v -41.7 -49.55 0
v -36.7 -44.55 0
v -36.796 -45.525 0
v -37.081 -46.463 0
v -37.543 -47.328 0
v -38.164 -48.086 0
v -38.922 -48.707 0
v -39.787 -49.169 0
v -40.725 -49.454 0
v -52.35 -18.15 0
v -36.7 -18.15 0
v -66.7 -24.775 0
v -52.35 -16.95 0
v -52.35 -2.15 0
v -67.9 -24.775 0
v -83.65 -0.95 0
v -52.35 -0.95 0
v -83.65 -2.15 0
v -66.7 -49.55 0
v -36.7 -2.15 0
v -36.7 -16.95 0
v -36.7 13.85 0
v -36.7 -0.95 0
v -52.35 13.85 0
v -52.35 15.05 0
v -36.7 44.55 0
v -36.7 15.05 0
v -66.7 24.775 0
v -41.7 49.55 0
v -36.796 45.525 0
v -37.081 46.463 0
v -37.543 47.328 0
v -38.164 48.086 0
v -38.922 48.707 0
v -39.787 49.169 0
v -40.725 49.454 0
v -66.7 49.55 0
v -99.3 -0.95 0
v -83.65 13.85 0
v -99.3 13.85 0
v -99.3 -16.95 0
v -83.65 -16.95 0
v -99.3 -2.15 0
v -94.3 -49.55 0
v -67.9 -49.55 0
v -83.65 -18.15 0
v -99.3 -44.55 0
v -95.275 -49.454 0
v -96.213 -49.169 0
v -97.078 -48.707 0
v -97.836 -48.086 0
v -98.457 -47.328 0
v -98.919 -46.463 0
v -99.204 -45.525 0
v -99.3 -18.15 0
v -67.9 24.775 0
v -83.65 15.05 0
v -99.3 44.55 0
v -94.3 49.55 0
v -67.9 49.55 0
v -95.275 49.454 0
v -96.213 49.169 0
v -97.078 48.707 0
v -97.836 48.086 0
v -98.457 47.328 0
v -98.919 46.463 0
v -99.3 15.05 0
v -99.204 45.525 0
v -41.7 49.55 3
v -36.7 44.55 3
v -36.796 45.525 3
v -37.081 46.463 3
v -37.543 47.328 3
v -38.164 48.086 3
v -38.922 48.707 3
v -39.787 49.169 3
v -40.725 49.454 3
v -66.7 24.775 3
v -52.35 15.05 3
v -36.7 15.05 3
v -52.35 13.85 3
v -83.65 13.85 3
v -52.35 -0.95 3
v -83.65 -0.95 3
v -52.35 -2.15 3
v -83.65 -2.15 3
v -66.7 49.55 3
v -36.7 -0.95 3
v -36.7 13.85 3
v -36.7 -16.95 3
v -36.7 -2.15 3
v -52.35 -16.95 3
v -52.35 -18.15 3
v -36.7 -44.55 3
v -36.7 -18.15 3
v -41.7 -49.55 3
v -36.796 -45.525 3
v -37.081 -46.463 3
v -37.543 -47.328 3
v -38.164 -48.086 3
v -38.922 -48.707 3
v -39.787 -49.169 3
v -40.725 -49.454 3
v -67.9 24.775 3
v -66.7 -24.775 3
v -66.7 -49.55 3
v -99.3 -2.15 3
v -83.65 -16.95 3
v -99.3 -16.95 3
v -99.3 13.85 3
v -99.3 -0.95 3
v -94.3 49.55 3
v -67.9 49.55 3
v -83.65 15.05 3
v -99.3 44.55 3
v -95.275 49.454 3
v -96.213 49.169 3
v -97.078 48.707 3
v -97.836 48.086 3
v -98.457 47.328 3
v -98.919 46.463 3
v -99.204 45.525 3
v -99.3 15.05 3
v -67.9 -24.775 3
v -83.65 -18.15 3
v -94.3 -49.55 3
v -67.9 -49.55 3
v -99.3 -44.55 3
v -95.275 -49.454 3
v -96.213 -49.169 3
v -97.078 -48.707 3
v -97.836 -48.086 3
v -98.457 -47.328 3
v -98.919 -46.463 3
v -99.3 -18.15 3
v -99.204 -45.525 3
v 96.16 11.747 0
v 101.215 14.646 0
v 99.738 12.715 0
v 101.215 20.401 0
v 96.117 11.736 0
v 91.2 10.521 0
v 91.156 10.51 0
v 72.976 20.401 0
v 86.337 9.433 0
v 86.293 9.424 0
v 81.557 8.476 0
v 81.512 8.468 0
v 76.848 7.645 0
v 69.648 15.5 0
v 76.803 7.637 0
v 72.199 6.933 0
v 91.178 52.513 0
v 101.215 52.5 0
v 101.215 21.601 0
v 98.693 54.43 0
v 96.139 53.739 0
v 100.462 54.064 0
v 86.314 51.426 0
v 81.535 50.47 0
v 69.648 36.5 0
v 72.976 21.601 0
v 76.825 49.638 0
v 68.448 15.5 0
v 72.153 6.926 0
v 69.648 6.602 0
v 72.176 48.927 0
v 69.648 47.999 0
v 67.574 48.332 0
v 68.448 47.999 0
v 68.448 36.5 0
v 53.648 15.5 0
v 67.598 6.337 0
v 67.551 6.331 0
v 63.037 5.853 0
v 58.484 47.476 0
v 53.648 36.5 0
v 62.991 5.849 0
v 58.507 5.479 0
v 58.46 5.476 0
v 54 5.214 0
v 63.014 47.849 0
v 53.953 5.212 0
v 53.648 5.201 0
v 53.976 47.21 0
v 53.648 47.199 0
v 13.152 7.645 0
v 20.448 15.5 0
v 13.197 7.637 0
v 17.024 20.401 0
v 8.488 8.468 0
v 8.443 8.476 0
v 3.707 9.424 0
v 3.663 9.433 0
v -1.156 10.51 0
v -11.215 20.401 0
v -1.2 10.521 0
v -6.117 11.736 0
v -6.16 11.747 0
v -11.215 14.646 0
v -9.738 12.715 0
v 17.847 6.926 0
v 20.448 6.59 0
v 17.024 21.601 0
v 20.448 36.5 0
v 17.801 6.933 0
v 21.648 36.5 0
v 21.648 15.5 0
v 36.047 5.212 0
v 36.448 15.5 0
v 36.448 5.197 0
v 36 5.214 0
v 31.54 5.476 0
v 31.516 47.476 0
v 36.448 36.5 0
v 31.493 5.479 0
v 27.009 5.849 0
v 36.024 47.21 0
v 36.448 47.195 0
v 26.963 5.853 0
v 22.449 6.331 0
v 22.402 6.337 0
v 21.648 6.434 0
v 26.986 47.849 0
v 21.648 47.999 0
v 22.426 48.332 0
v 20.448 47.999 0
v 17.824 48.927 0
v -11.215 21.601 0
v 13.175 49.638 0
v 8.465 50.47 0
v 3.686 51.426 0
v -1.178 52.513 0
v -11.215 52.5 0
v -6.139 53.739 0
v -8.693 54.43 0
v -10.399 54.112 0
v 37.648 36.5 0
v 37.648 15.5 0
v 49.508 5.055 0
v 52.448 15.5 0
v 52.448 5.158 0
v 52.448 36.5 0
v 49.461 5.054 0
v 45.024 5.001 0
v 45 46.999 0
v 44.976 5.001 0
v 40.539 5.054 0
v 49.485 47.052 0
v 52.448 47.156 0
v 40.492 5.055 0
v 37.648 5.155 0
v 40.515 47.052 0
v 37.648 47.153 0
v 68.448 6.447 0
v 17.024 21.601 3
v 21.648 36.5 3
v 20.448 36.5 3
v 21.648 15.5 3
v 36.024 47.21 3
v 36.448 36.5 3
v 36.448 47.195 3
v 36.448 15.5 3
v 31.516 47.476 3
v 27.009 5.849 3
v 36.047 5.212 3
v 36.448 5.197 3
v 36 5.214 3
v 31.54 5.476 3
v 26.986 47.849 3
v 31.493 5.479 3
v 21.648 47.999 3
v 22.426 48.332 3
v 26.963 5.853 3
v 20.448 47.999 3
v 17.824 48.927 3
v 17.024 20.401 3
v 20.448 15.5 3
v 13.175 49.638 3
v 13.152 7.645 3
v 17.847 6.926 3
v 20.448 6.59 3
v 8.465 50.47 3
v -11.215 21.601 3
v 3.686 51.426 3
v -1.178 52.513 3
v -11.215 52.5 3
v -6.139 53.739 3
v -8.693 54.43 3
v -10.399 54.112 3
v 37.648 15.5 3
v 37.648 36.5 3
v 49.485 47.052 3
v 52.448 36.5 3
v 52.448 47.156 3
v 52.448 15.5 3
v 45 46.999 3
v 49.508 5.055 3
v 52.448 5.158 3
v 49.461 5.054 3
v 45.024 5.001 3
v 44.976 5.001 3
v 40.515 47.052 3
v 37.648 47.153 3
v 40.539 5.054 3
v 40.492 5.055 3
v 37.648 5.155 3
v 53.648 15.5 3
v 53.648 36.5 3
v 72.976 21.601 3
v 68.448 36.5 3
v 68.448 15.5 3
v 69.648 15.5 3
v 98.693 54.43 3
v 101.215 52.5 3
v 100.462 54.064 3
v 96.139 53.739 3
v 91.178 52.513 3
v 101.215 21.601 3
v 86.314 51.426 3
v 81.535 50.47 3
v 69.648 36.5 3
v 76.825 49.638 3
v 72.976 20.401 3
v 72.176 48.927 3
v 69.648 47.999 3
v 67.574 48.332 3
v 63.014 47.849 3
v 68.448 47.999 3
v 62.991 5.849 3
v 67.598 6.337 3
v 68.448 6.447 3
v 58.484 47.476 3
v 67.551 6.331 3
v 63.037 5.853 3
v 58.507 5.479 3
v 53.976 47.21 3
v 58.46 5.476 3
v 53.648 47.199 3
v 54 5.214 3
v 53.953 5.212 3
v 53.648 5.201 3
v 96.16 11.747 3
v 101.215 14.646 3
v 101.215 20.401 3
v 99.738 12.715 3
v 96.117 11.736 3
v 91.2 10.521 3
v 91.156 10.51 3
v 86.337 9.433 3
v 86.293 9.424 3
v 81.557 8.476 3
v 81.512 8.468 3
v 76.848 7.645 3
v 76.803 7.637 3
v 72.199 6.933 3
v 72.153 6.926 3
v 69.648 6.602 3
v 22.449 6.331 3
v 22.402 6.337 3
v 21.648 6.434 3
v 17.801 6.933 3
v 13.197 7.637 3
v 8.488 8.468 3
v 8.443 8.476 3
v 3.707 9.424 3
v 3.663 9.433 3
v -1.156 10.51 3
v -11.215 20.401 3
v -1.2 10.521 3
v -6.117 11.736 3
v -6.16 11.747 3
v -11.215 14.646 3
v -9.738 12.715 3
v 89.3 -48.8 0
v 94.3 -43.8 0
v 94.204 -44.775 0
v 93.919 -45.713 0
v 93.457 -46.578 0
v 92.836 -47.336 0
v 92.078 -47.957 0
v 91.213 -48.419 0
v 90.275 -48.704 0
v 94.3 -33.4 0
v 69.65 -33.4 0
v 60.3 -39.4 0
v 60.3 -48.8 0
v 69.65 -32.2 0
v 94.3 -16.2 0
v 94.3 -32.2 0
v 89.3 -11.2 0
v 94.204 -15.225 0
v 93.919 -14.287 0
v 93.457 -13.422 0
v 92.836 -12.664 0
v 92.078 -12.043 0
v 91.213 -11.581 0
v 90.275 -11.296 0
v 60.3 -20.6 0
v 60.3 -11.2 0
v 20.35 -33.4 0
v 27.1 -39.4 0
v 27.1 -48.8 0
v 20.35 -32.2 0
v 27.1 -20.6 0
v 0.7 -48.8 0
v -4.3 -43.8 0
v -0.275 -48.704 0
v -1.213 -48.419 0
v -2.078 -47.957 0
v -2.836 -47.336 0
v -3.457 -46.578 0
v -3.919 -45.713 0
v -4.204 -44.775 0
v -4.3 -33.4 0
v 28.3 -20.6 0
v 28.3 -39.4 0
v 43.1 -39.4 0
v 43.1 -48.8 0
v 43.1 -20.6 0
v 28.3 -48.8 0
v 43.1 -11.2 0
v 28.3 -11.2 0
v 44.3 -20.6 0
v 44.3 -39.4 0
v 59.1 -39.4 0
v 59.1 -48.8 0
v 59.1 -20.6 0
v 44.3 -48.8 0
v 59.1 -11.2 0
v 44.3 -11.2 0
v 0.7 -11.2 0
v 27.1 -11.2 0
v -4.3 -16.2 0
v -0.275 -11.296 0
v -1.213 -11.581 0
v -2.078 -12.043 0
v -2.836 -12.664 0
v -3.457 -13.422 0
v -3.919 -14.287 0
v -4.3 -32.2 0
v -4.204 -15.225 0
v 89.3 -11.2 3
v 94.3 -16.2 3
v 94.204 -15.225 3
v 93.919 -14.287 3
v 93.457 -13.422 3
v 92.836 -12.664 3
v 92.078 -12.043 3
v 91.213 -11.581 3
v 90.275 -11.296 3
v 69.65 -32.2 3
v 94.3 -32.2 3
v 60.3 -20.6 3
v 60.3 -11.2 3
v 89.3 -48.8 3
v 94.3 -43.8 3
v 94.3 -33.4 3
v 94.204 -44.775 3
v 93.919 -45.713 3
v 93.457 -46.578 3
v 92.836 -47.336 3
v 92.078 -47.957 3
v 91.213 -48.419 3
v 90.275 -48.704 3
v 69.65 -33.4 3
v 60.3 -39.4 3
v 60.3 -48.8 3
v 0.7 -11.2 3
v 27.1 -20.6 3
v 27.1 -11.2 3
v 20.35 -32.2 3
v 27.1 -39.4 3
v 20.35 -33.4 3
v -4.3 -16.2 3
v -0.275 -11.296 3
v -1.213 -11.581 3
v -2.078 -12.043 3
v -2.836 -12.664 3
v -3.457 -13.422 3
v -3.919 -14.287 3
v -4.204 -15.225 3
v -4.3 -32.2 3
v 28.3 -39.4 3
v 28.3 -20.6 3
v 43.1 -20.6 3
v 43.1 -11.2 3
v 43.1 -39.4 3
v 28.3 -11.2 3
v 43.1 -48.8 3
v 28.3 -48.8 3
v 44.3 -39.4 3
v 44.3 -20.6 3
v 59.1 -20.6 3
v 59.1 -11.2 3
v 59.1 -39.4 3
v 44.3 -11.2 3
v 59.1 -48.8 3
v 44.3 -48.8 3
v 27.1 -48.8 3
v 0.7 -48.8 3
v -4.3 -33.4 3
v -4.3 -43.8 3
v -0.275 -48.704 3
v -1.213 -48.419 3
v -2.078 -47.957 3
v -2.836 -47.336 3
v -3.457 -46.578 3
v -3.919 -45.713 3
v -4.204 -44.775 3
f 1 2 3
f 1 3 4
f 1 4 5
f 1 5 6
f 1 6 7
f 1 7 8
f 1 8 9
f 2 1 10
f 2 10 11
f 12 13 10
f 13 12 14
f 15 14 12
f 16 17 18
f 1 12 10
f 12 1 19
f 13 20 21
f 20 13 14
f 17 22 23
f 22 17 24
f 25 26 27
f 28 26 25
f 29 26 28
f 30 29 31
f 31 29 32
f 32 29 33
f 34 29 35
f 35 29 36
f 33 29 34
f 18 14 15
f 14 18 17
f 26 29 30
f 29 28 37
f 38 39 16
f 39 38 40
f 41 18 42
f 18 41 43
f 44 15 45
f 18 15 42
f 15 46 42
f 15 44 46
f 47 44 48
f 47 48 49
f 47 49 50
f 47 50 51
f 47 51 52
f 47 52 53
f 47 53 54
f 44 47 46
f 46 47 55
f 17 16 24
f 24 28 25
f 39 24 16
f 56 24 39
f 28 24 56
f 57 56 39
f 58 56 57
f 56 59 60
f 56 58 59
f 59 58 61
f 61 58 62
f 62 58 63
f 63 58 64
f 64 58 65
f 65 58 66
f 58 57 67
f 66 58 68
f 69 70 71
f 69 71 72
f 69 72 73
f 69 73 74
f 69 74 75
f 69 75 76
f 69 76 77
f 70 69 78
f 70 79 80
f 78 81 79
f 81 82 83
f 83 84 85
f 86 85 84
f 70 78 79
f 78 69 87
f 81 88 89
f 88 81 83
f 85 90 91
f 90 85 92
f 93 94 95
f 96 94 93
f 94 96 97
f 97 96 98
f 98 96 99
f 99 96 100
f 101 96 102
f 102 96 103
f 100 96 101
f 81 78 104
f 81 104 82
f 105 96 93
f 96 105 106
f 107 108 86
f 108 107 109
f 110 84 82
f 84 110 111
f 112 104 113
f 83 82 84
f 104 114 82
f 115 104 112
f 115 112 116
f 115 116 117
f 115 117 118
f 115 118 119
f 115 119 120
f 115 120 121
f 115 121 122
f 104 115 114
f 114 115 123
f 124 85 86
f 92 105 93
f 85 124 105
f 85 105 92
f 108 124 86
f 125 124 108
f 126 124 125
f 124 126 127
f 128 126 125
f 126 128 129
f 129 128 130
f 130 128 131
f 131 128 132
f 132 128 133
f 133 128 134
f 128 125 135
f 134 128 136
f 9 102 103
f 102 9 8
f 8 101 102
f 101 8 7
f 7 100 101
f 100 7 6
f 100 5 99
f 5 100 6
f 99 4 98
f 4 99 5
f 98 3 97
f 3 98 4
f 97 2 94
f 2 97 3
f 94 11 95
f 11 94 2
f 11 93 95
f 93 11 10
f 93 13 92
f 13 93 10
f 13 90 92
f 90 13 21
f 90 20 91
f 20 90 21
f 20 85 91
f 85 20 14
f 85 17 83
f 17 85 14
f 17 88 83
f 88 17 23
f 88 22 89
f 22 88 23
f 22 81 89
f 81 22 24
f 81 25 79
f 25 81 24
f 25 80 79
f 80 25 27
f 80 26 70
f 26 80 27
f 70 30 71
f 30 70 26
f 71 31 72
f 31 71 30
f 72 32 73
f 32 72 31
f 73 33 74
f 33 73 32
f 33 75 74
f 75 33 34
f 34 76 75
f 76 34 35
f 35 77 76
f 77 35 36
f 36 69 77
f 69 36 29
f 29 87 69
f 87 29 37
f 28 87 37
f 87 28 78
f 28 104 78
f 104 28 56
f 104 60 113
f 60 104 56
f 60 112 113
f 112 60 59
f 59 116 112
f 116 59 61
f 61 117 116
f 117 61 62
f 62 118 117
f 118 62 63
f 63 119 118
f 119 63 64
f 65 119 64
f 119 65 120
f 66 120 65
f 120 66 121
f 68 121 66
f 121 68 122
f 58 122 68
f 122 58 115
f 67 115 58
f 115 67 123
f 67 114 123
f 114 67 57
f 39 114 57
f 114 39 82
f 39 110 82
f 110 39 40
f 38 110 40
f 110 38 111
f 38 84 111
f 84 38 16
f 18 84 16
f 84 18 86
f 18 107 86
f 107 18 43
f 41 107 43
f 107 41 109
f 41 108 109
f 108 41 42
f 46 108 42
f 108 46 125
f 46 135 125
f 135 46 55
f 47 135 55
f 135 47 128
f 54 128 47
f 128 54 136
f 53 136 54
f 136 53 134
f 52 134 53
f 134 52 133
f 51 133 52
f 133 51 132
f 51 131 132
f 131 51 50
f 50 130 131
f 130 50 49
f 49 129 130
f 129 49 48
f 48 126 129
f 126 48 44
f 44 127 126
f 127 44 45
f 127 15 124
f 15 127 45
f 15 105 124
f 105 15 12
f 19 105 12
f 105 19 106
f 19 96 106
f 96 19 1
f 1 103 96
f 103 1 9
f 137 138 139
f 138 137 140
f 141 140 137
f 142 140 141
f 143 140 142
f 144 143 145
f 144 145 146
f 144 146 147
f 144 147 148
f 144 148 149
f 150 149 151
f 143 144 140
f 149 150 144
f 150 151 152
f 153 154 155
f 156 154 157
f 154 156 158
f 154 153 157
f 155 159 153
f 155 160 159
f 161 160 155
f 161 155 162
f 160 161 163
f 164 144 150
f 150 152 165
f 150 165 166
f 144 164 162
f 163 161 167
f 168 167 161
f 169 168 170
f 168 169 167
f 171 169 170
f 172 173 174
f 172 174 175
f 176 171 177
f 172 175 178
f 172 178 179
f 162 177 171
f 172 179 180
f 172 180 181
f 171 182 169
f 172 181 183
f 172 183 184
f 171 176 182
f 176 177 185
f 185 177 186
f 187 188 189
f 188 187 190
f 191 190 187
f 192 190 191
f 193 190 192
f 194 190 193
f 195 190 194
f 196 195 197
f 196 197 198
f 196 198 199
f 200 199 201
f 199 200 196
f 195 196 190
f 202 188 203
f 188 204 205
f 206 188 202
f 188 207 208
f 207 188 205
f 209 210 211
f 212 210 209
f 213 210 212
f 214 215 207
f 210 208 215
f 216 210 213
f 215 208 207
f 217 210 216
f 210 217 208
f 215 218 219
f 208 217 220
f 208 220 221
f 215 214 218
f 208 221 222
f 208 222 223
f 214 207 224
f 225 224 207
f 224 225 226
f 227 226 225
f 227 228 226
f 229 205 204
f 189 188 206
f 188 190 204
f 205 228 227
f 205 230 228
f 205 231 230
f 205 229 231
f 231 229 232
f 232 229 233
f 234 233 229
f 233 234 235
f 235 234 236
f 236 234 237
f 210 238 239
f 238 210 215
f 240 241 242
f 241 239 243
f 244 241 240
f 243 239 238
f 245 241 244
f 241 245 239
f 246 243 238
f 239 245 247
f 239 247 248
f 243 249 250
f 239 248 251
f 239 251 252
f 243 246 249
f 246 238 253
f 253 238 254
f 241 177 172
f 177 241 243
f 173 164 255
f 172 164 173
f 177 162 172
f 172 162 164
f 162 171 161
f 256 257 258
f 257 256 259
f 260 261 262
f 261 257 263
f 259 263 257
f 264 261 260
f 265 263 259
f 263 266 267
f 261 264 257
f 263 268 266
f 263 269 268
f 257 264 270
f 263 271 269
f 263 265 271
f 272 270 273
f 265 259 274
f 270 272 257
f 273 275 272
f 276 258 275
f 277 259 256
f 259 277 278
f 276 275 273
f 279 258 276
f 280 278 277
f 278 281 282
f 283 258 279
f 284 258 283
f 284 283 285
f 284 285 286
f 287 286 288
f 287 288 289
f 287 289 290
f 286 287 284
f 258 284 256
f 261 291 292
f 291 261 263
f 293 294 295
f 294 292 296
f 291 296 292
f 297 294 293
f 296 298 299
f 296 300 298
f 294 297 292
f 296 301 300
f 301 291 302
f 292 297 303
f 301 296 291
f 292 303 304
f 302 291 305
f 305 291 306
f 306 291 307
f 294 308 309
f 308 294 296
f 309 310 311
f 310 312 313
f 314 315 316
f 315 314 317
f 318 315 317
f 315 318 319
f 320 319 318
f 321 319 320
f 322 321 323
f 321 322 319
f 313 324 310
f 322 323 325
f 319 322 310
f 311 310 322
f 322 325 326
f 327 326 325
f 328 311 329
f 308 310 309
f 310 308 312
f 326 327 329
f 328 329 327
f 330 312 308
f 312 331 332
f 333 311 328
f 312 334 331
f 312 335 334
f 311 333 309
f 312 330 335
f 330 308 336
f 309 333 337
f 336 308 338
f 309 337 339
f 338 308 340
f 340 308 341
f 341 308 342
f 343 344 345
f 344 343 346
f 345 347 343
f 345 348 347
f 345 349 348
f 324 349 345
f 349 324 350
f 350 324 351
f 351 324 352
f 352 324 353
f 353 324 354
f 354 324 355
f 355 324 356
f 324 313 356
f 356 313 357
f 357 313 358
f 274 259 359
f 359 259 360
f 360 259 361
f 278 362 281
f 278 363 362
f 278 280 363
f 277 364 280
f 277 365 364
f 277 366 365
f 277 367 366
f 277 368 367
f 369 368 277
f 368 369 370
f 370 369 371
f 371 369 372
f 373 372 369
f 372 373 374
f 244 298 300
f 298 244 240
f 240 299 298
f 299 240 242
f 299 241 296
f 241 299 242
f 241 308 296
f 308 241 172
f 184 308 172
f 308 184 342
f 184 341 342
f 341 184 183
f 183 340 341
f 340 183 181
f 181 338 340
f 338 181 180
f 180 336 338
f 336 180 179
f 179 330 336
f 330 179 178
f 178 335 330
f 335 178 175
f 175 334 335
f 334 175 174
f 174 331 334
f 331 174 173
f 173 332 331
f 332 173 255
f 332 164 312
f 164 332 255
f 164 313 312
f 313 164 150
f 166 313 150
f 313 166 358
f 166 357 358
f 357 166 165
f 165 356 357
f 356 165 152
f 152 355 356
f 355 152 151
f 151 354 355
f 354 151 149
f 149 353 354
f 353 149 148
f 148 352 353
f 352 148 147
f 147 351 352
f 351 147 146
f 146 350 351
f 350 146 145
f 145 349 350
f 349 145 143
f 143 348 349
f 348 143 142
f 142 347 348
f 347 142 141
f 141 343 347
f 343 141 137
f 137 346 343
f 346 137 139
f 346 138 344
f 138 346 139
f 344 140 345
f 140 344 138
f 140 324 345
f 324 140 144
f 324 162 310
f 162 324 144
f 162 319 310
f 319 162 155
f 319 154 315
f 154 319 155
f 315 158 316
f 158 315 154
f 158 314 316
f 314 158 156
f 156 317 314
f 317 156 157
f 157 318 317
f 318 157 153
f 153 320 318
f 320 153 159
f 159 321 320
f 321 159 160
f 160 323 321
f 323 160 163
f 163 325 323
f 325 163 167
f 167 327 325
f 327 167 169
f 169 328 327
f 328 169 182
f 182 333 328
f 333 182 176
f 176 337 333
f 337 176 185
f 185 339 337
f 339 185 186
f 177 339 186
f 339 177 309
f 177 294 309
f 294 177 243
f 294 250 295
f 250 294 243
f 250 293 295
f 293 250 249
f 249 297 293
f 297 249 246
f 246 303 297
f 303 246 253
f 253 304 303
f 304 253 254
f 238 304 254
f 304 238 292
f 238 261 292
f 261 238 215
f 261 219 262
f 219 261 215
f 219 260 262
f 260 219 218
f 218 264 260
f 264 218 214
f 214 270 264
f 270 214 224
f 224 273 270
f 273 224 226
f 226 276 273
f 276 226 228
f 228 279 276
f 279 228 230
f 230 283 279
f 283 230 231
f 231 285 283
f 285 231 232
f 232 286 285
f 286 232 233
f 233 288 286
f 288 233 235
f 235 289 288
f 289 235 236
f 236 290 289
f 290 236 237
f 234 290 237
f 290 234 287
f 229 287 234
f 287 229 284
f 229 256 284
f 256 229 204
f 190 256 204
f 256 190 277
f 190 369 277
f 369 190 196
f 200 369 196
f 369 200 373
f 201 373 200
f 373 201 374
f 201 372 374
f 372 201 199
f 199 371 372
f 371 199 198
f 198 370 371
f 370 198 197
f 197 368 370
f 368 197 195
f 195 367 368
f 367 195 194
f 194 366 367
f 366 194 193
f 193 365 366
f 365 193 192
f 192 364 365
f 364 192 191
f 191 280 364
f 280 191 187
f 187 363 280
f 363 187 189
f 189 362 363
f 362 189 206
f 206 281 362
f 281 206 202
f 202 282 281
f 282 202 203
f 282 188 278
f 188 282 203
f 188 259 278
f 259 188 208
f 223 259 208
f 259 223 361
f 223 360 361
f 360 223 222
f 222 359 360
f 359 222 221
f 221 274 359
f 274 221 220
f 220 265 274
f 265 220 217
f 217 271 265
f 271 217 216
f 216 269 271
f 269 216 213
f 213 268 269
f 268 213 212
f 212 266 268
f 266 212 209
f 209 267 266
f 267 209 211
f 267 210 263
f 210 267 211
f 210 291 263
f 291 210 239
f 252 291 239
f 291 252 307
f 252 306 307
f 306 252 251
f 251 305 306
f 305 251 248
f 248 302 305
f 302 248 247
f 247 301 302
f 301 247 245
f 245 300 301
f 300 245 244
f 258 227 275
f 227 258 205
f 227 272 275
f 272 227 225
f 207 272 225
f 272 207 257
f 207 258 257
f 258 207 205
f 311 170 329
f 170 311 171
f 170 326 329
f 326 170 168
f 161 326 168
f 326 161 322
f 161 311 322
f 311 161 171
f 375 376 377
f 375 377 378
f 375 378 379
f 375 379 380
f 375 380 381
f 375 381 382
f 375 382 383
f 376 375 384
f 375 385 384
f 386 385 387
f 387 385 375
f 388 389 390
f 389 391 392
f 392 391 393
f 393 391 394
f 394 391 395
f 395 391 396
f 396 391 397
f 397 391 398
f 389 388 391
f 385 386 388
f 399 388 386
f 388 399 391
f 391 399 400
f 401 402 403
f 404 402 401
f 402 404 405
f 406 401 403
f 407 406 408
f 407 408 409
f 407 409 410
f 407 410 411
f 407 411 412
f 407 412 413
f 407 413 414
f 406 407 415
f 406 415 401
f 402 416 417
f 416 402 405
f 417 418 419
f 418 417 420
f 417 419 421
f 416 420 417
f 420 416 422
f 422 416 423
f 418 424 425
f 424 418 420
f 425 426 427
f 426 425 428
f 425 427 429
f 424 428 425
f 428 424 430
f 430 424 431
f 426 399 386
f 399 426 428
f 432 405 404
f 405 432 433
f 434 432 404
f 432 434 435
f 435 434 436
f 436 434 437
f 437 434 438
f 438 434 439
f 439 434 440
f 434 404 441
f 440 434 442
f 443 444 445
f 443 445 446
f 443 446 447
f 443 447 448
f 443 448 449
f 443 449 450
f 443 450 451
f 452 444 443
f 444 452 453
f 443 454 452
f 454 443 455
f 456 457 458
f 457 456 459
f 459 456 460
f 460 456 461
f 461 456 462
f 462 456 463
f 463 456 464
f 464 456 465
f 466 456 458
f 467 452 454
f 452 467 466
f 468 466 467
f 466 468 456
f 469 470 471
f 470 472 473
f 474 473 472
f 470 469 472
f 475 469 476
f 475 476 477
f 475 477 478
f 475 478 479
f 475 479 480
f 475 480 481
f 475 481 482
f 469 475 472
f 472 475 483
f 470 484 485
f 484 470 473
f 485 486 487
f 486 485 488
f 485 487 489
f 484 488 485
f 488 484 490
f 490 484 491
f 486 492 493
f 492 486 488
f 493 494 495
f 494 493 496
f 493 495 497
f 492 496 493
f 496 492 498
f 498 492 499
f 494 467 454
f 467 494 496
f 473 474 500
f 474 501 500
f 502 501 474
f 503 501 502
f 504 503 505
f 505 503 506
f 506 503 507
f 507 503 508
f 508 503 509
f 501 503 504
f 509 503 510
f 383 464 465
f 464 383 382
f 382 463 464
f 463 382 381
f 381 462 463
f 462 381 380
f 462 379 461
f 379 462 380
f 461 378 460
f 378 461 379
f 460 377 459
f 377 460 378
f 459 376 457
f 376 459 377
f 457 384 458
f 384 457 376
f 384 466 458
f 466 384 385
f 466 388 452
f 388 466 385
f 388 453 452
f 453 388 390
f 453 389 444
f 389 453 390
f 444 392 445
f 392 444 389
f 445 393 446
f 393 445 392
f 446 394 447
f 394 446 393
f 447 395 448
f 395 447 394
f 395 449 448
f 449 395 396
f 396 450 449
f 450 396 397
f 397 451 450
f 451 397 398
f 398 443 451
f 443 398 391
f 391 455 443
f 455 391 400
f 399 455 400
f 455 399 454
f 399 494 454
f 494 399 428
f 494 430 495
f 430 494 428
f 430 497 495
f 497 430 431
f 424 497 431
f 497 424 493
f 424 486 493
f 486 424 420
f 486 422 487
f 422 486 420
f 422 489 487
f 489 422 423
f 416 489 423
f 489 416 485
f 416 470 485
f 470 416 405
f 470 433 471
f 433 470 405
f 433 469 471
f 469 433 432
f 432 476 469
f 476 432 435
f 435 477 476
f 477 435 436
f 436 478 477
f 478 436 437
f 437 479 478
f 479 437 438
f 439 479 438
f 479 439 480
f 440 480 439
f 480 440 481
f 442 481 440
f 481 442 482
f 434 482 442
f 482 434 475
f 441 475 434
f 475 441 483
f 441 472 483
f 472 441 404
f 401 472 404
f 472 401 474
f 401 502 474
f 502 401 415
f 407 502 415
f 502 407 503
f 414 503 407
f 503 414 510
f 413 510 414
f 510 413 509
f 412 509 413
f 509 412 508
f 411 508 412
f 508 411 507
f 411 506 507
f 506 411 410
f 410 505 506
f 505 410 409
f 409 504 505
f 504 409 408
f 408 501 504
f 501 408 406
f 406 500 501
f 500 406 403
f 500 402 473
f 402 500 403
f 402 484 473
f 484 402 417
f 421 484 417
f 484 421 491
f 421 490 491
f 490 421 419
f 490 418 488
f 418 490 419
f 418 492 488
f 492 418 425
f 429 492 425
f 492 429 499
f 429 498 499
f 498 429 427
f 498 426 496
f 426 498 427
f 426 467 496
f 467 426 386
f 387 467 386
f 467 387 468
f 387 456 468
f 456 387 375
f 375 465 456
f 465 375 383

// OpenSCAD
// file: lib/aux_pod_lib.scad
// SPDX-License-Identifier: CERN-OHL-P-2.0
// Copyright 2026 CLSOFTLAB (씨엘소프트랩), Dr. Lee Il-guk (이일국)
// Open Walking Safety Helmet (OWSH) - aux pod (v1.1, NEW): low conformal pod on the back of the
// head, below the main case. Holds D1 ULN2003 driver board and A1 USB audio adapter, which do
// not fit inside the main case under its 40 mm height cap. Fully conformal: floor, lid underside
// and lid top are offset surfaces of the shell, so the height above the shell is uniform.
//
// Pod frame (worn): origin = underside centre (top of the 3 mm saddle), +X along the long axis
// (across the back of the head, user's right), +Y up the head toward the crown, +Z outward.

include <owsh_common.scad>

aux_R_lat  = 110;   // shell radius along X (around the back of the head) - measure
aux_R_long = 140;   // shell radius along Y (up the back of the head) - measure

uln_size   = [35, 32, 15];   // ULN2003 board (verify; hole pattern varies -> corner cradle)
audio_size = [50, 18, 10];   // USB audio adapter (verify)
aw = 1.8; afloor = 1.6; alid = 1.8; agap = 0.6;
mid_gap = 8;                 // between the two bays (holds lid screws)

a_in_L = 1 + uln_size[0] + mid_gap + audio_size[0] + 1;
a_in_W = uln_size[1] + 2;
aux_L = a_in_L + 2 * aw;
aux_W = a_in_W + 2 * aw;
aRl = aux_R_lat; aRg = aux_R_long;
function chord_sag(len, R) = R - sqrt(R * R - len * len / 4);
a_d_under = afloor + max(uln_size[2] + chord_sag(uln_size[0], aRl + afloor), audio_size[2] + chord_sag(audio_size[0], aRl + afloor)) + agap;
a_d_top   = a_d_under + alid;
uln_x   = -a_in_L / 2 + 1 + uln_size[0] / 2;
audio_x =  a_in_L / 2 - 1 - audio_size[0] / 2;
gap_x   = -a_in_L / 2 + 1 + uln_size[0] + mid_gap / 2;
function az(x, y, d) = d - esag(x, y, aRl + d, aRg + d);
a_bosses = [[gap_x, a_in_W / 2 - 3.2], [gap_x, -a_in_W / 2 + 3.2], [a_in_L / 2 - 5, a_in_W / 2 - 3.2], [a_in_L / 2 - 5, -a_in_W / 2 + 3.2]];

echo(str("OWSH aux pod: footprint ", aux_L, " x ", aux_W, " mm, height above shell ", a_d_top + saddle_t, " mm"));

module a_prism(grow = 0) translate([0, 0, -80]) linear_extrude(200) rounded_rect2d([aux_L + 2 * grow, aux_W + 2 * grow], 5 + grow);
module a_under() below_surf(a_d_under, aRl, aRg);
module a_top()   below_surf(a_d_top, aRl, aRg);

module aux_pod_base() {
    difference() {
        union() {
            intersection() {
                a_prism(); above_surf(0, aRl, aRg); a_under();
                union() {
                    difference() { a_prism(); a_prism(-aw); }
                    intersection() { a_prism(-aw); below_surf(afloor, aRl, aRg); }
                    intersection() {
                        a_prism(-aw + eps); above_surf(afloor - eps, aRl, aRg);
                        union() {
                            // ULN2003 corner cradle posts
                            for (sx = [-1, 1], sy = [-1, 1]) translate([uln_x + sx * (uln_size[0] / 2 + clr), sy * (uln_size[1] / 2 + clr), -20])
                                difference() {
                                    translate([sx < 0 ? -1.6 : -6, sy < 0 ? -1.6 : -6, 0]) cube([7.6, 7.6, 20 + afloor + 7]);
                                    translate([sx < 0 ? 0 : -8, sy < 0 ? 0 : -8, -1]) cube([8, 8, 40]);
                                }
                            // audio adapter side rails
                            for (sy = [-1, 1]) translate([audio_x - audio_size[0] / 2 + 6, sy * (audio_size[1] / 2 + clr) + (sy < 0 ? -1.6 : 0), -20])
                                cube([audio_size[0] - 12, 1.6, 20 + afloor + 6]);
                            for (p = a_bosses) translate([p[0], p[1], -20]) cylinder(d = 6, h = 60, $fn = fn_hole);
                        }
                    }
                }
            }
            // strap tabs on both ends, following the shell
            for (sx = [-1, 1]) let(x = sx * (aux_L / 2 - 1))
                translate([x, 0, -esag(x, 0, aRl, aRg)]) rotate([0, sx * asin((aux_L / 2) / aRl), 0]) mirror([sx < 0 ? 1 : 0, 0, 0])
                    difference() { strap_tab(); translate([-10, -20, -10]) cube([10, 40, 30]); }
        }
        // headset jacks at the +X end
        translate([aux_L / 2 - aw / 2, 0, az(aux_L / 2, 0, afloor) + audio_size[2] / 2 + 0.5]) rotate([0, 90, 0])
            linear_extrude(aw * 4, center = true) rounded_rect2d([audio_size[2] + 2, audio_size[1]], 3);
        // cable notches, open toward the shell: USB extension + GPIO in (top wall), motor leads out (bottom wall)
        for (c = [[audio_x - 15, 1, 12, 7], [uln_x, 1, 14, 7], [uln_x, -1, 16, 6]])
            translate([c[0], c[1] * (aux_W / 2 - aw), -esag(c[0], c[1] * aux_W / 2, aRl, aRg) - 1])
                cable_gland_slot(c[2], c[3] + esag(c[0], c[1] * aux_W / 2, aRl, aRg) + 1, aw * 4);
        for (p = a_bosses) translate([p[0], p[1], az(p[0], p[1], a_d_under) + eps]) pilot_hole(m25_pilot_d(), 7);
        // drain holes at the lower corners
        for (sx = [-1, 1]) translate([sx * (a_in_L / 2 - 3), -a_in_W / 2 + 2.5, -30]) cylinder(d = 2.5, h = 40, $fn = 16);
    }
}

module aux_pod_lid() {
    difference() {
        union() {
            intersection() { a_prism(0.6); difference() { a_top(); a_under(); } }
            intersection() {
                difference() { a_prism(-aw - clr); a_prism(-aw - clr - 1.2); }
                difference() { a_under(); translate([0, 0, -2.5]) a_under(); }
            }
        }
        for (p = a_bosses) {
            translate([p[0], p[1], -20]) cylinder(d = m25_clear_d, h = 80, $fn = fn_hole);
            translate([p[0], p[1], az(p[0], p[1], a_d_top) - 1.2]) cylinder(d = m25_head_d + 0.6, h = 5, $fn = fn_hole);
            intersection() { translate([p[0], p[1], -20]) cylinder(d = 6 + 2 * clr, h = 80, $fn = fn_hole); a_under(); }
        }
        translate([-8, 0, az(0, 0, a_d_top) - label_depth]) part_label("AUX POD", 4.5, label_depth + 0.4);
    }
}

module aux_pod_base_print() aux_pod_base();
module aux_pod_lid_print() translate([0, 0, a_d_top]) rotate([180, 0, 0]) aux_pod_lid();
function aux_footprint() = [aux_L, aux_W];
function aux_height() = a_d_top + saddle_t;
module aux_saddle_worn() intersection() { a_prism(); above_surf(-saddle_t, aRl, aRg); below_surf(0, aRl, aRg); }
// main file
// SPDX-License-Identifier: CERN-OHL-P-2.0
// Copyright 2026 CLSOFTLAB (씨엘소프트랩), Dr. Lee Il-guk (이일국)
// Open Walking Safety Helmet (OWSH) - saddle_pad (spec §10, v1.1): thin uniform TPU 95A saddles for the
// front pod, main case and aux pod (all three on this plate). The modules' undersides already follow
// the shell, so each saddle is a flat 3 mm sheet with relief slits that lets it bend over the doubly
// curved shell. 3M Dual Lock on both faces or hook-and-loop; never glue to the shell (P1/P2).
// Print: TPU 95A, flat, 3 walls, 15 % infill (or 100 % for 3 mm), no supports.

include <lib/owsh_common.scad>
use <lib/front_pod_lib.scad>
use <lib/main_case_lib.scad>
use <lib/aux_pod_lib.scad>

slit_w   = 1.2;   // relief slit width
slit_len = 0.25;  // slit length as a fraction of the dimension it cuts into
slit_pitch = 16;

module slits(size) {
    // slits from all four edges so the sheet can take a double curvature (they never meet)
    lx = size[1] * slit_len; ly = size[0] * slit_len;
    for (x = [-size[0] / 2 + slit_pitch : slit_pitch : size[0] / 2 - slit_pitch / 2], s = [-1, 1])
        if (abs(x) < size[0] / 2 - ly - 3) translate([x, s * (size[1] / 2 - lx / 2 + 0.5), 0]) square([slit_w, lx + 1], center = true);
    for (y = [-size[1] / 2 + slit_pitch : slit_pitch : size[1] / 2 - slit_pitch / 2], s = [-1, 1])
        if (abs(y) < size[1] / 2 - lx - 3) translate([s * (size[0] / 2 - ly / 2 + 0.5), y, 0]) square([ly + 1, slit_w], center = true);
}
module sheet(size, name, outline = undef) {
    linear_extrude(saddle_t) difference() {
        if (outline == undef) rounded_rect2d(size, 5); else translate([0, -size[1] / 2]) offset(r = 2) offset(delta = -2) polygon(outline);
        slits(size);
    }
}
worn_id = 0;      // 0 = print plate; 1 / 2 / 3 = curved pod / case / aux saddle in the worn frame (assembly_preview)
part = ["plate", "worn_pod", "worn_case", "worn_aux"][worn_id];
pf = pod_footprint(); cf = case_footprint(); af = aux_footprint();
function pod_R_arc() = pf[0] * 1.04;
if (part == "plate") {
    translate([-68, 0, 0]) sheet(cf, "case");
    translate([45, 26, 0]) sheet([pod_R_arc(), pf[1]], "pod", pod_saddle_outline());
    translate([45, -30, 0]) sheet(af, "aux");
}
if (part == "worn_pod")  pod_saddle_worn();
if (part == "worn_case") case_saddle_worn();
if (part == "worn_aux")  aux_saddle_worn();
